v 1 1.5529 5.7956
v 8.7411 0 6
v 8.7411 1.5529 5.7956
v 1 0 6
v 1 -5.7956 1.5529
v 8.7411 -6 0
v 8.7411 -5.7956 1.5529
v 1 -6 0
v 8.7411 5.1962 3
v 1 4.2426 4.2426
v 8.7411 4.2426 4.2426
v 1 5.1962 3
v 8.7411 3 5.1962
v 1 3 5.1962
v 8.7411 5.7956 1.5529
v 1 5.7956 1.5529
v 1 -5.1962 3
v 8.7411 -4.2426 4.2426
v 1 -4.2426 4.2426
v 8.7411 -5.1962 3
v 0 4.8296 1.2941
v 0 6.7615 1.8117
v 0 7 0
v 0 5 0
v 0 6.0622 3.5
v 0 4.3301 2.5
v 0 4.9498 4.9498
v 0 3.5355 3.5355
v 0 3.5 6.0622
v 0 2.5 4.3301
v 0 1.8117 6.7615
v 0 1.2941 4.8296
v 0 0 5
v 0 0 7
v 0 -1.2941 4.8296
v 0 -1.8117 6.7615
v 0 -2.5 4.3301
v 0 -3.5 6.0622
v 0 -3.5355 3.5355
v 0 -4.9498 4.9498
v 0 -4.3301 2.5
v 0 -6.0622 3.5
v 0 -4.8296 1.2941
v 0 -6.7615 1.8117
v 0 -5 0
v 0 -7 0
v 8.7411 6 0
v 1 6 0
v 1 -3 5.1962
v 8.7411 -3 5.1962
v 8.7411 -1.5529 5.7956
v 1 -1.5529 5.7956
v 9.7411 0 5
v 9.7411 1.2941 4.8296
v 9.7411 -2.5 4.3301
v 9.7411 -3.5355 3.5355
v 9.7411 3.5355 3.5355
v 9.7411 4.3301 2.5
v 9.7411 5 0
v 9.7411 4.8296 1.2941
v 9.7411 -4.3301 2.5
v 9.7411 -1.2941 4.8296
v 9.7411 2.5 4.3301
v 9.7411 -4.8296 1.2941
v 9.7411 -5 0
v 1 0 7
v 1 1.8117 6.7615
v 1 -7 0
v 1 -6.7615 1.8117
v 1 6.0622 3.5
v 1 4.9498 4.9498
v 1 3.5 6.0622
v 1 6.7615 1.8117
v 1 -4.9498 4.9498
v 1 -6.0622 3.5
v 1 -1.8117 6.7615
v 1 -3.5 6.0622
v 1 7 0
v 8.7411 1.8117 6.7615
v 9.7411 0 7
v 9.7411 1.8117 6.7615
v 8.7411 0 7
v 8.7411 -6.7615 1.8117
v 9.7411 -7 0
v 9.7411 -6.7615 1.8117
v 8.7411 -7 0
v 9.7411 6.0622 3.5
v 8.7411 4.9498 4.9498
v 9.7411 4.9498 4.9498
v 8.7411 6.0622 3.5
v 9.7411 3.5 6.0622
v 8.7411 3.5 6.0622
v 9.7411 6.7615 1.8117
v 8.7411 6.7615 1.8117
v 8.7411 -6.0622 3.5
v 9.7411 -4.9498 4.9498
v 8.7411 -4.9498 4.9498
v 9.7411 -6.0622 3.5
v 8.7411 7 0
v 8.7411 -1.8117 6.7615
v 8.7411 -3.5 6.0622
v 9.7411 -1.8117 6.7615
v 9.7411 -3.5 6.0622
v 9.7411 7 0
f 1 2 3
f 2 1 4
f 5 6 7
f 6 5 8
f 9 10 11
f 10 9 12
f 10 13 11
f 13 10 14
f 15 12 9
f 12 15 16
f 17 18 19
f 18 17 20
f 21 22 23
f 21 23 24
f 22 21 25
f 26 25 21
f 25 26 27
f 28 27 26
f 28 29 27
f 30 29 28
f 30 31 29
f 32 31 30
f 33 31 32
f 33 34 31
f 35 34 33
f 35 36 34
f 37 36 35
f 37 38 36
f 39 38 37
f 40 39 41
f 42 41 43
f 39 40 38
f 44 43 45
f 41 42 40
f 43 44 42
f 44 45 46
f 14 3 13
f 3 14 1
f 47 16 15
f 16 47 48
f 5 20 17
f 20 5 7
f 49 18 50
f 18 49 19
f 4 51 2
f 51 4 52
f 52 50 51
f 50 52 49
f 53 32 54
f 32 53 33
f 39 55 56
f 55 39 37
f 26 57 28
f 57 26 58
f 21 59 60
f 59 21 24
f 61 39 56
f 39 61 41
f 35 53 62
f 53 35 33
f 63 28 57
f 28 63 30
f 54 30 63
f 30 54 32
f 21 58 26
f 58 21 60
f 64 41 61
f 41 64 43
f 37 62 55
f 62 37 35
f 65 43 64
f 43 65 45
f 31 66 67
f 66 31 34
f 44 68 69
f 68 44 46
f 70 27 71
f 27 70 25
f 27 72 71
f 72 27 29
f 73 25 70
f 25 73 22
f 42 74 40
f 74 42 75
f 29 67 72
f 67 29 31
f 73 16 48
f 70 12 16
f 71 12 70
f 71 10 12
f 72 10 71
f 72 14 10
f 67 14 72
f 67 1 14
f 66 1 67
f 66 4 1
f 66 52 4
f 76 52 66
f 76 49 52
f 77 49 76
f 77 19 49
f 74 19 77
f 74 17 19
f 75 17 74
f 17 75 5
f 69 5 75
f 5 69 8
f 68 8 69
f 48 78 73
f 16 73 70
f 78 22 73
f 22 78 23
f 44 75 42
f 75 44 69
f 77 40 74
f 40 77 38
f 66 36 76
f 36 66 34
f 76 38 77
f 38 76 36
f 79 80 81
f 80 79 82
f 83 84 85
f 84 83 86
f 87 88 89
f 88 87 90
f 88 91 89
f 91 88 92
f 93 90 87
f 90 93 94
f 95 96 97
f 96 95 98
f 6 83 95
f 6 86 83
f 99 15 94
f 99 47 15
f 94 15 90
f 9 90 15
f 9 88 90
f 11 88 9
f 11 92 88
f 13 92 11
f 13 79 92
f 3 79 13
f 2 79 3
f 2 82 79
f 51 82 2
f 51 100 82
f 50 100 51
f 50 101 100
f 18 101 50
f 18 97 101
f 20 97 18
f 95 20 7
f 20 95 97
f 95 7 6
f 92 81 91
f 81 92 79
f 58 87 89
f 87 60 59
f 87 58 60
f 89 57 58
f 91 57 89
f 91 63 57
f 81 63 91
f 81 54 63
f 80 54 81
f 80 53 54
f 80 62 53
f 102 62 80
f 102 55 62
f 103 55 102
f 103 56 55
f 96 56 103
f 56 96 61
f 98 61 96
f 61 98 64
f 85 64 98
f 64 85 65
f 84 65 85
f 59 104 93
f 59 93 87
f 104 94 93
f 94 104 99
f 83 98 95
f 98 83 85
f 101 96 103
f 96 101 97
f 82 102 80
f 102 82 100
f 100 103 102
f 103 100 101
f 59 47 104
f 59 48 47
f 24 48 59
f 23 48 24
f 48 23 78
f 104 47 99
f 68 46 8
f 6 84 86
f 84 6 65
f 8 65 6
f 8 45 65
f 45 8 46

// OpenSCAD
// file: ../build_environments.scad
// build_environments.scad: modules to build level sections
//

module pool(diameter=10.0, wall_height=2.0, step_width=3.0, connections=[])
{
    difference() {
        union() {
        difference() {
            cylinder(h=0.5,r1=diameter+step_width,r2=diameter+step_width,$fn=48);
            translate([0,0,-0.1])
                cylinder(h=0.7,r1=diameter,r2=diameter,$fn=48);
        }
        difference() {
            cylinder(h=wall_height,r1=diameter+step_width+1.0,r2=diameter+step_width+1.0,$fn=48);
            translate([0,0,-0.1])
                cylinder(h=wall_height+0.2,r1=diameter+step_width,r2=diameter+step_width,$fn=48);
        }
        }
    
        for (c = connections)
        {
            rotate([0,90,0]) {
                angle = atan2(c[1],c[0]);
                rotate([-angle,0,0]) {
                    cylinder(h=diameter+5.0,r1=c[2],r2=c[2],$fn=48);
                }
            }
        }
    }
}

module straight(length=10.0, width=2.0, dy1=0.0, dy2=0.0, dz=0.0)
{
    dims = [0, 0, 0, 0, 0, (dz/length)];
    matrix = [
        [ 1, dims[0], dims[1], 0 ],
        [ dims[2], 1, dims[4], 0 ],
        [ dims[5], dims[3], 1, 0 ],
        [ 0, 0, 0, 1 ]
    ];
    multmatrix(matrix)
    difference() {
        translate([dy1,0,0])
        union() {
            rotate([0,90,0]) {
                difference() {
                    cylinder(h=(length-dy1-dy2),r1=width+1.0,r2=width+1.0,$fn=24);
                    translate([0,0,-0.1])
                        cylinder(h=(length-dy1-dy2+0.2),r1=width,r2=width,$fn=24);
                }
                difference() {
                    cylinder(h=1.0,r1=width+2.0,r2=width+2.0,$fn=24);
                    translate([0,0,-0.1])
                        cylinder(h=1.2,r1=width,r2=width,$fn=24);
                }
                translate([0,0,(length-dy1-dy2)-1.0]) {
                    difference() {
                        cylinder(h=1.0,r1=width+2.0,r2=width+2.0,$fn=24);
                        translate([0,0,-0.1])
                            cylinder(h=1.2,r1=width,r2=width,$fn=24);
                    }
                }
            }
        }
        translate([0,0,-(2*width+4.0)/2])
            cube([3*length,3*length,2*width+4.0],center=true);
    }
}

module curve(p0=[0,0], center=[0,0], dir=1, angle=0.0, width=2.0)
{
    radius = sqrt((p0[0]-center[0])*(p0[0]-center[0]) + (p0[1]-center[1])*(p0[1]-center[1]));
    if (dir == 0) {
        difference() {
            rotate([0,0,-90])
            difference() {
                rotate_extrude(angle = angle, convexity = 10, $fn=32)
                    translate([radius, 0, 0])
                        circle(r = width+1.0,$fn=24);
                rotate([0,0,-1.0])
                    rotate_extrude(angle = angle+2.0, convexity = 10, $fn=32)
                        translate([radius, 0, 0])
                            circle(r = width,$fn=24);
            }
            translate([0,0,-(2*width+4.0)/2])
                cube([5*radius,5*radius,2*width+4.0],center=true);
        }
    }
    else {
        difference() {
            rotate([0,0,90])
            difference() {
                rotate_extrude(angle = -angle, convexity = 10, $fn=32)
                    translate([radius, 0, 0])
                        circle(r = width+1.0,$fn=24);
                rotate([0,0,1.0])
                    rotate_extrude(angle = -angle-2.0, convexity = 10, $fn=32)
                        translate([radius, 0, 0])
                            circle(r = width,$fn=24);
            }
            translate([0,0,-(2*width+4.0)/2])
                cube([5*radius,5*radius,2*width+4.0],center=true);
        }
    }

}

// test pool
//pool(diameter=12.0000, wall_height=3.0000, step_width=3.0000, connections=[[0.0000,-26.0000,2.0000], [23.6074,0.0000,2.0000]]);

// test straight, slope
//straight(length=26.0000, width=2.0000, dy1=11.8322, dy2=6.7082, dz=0.0000);
//straight(length=29.1549, width=12.0000, dy1=0.0000, dy2=0.0000, dz=-15.0000);

// test curve
//curve(p0=[23.6074, 0.0000], center=[23.6074, 5.0000], dir=0, angle=60.1011, width=2.0000);
//curve(p0=[33.6426, 12.4219], center=[37.9771, 9.9295], dir=1, angle=120.4627, width=2.0000);
// main file
use <../build_environments.scad>;
straight(length=9.7411, width=5.0000, dy1=0.0000, dy2=0.0000, dz=0.0000);
